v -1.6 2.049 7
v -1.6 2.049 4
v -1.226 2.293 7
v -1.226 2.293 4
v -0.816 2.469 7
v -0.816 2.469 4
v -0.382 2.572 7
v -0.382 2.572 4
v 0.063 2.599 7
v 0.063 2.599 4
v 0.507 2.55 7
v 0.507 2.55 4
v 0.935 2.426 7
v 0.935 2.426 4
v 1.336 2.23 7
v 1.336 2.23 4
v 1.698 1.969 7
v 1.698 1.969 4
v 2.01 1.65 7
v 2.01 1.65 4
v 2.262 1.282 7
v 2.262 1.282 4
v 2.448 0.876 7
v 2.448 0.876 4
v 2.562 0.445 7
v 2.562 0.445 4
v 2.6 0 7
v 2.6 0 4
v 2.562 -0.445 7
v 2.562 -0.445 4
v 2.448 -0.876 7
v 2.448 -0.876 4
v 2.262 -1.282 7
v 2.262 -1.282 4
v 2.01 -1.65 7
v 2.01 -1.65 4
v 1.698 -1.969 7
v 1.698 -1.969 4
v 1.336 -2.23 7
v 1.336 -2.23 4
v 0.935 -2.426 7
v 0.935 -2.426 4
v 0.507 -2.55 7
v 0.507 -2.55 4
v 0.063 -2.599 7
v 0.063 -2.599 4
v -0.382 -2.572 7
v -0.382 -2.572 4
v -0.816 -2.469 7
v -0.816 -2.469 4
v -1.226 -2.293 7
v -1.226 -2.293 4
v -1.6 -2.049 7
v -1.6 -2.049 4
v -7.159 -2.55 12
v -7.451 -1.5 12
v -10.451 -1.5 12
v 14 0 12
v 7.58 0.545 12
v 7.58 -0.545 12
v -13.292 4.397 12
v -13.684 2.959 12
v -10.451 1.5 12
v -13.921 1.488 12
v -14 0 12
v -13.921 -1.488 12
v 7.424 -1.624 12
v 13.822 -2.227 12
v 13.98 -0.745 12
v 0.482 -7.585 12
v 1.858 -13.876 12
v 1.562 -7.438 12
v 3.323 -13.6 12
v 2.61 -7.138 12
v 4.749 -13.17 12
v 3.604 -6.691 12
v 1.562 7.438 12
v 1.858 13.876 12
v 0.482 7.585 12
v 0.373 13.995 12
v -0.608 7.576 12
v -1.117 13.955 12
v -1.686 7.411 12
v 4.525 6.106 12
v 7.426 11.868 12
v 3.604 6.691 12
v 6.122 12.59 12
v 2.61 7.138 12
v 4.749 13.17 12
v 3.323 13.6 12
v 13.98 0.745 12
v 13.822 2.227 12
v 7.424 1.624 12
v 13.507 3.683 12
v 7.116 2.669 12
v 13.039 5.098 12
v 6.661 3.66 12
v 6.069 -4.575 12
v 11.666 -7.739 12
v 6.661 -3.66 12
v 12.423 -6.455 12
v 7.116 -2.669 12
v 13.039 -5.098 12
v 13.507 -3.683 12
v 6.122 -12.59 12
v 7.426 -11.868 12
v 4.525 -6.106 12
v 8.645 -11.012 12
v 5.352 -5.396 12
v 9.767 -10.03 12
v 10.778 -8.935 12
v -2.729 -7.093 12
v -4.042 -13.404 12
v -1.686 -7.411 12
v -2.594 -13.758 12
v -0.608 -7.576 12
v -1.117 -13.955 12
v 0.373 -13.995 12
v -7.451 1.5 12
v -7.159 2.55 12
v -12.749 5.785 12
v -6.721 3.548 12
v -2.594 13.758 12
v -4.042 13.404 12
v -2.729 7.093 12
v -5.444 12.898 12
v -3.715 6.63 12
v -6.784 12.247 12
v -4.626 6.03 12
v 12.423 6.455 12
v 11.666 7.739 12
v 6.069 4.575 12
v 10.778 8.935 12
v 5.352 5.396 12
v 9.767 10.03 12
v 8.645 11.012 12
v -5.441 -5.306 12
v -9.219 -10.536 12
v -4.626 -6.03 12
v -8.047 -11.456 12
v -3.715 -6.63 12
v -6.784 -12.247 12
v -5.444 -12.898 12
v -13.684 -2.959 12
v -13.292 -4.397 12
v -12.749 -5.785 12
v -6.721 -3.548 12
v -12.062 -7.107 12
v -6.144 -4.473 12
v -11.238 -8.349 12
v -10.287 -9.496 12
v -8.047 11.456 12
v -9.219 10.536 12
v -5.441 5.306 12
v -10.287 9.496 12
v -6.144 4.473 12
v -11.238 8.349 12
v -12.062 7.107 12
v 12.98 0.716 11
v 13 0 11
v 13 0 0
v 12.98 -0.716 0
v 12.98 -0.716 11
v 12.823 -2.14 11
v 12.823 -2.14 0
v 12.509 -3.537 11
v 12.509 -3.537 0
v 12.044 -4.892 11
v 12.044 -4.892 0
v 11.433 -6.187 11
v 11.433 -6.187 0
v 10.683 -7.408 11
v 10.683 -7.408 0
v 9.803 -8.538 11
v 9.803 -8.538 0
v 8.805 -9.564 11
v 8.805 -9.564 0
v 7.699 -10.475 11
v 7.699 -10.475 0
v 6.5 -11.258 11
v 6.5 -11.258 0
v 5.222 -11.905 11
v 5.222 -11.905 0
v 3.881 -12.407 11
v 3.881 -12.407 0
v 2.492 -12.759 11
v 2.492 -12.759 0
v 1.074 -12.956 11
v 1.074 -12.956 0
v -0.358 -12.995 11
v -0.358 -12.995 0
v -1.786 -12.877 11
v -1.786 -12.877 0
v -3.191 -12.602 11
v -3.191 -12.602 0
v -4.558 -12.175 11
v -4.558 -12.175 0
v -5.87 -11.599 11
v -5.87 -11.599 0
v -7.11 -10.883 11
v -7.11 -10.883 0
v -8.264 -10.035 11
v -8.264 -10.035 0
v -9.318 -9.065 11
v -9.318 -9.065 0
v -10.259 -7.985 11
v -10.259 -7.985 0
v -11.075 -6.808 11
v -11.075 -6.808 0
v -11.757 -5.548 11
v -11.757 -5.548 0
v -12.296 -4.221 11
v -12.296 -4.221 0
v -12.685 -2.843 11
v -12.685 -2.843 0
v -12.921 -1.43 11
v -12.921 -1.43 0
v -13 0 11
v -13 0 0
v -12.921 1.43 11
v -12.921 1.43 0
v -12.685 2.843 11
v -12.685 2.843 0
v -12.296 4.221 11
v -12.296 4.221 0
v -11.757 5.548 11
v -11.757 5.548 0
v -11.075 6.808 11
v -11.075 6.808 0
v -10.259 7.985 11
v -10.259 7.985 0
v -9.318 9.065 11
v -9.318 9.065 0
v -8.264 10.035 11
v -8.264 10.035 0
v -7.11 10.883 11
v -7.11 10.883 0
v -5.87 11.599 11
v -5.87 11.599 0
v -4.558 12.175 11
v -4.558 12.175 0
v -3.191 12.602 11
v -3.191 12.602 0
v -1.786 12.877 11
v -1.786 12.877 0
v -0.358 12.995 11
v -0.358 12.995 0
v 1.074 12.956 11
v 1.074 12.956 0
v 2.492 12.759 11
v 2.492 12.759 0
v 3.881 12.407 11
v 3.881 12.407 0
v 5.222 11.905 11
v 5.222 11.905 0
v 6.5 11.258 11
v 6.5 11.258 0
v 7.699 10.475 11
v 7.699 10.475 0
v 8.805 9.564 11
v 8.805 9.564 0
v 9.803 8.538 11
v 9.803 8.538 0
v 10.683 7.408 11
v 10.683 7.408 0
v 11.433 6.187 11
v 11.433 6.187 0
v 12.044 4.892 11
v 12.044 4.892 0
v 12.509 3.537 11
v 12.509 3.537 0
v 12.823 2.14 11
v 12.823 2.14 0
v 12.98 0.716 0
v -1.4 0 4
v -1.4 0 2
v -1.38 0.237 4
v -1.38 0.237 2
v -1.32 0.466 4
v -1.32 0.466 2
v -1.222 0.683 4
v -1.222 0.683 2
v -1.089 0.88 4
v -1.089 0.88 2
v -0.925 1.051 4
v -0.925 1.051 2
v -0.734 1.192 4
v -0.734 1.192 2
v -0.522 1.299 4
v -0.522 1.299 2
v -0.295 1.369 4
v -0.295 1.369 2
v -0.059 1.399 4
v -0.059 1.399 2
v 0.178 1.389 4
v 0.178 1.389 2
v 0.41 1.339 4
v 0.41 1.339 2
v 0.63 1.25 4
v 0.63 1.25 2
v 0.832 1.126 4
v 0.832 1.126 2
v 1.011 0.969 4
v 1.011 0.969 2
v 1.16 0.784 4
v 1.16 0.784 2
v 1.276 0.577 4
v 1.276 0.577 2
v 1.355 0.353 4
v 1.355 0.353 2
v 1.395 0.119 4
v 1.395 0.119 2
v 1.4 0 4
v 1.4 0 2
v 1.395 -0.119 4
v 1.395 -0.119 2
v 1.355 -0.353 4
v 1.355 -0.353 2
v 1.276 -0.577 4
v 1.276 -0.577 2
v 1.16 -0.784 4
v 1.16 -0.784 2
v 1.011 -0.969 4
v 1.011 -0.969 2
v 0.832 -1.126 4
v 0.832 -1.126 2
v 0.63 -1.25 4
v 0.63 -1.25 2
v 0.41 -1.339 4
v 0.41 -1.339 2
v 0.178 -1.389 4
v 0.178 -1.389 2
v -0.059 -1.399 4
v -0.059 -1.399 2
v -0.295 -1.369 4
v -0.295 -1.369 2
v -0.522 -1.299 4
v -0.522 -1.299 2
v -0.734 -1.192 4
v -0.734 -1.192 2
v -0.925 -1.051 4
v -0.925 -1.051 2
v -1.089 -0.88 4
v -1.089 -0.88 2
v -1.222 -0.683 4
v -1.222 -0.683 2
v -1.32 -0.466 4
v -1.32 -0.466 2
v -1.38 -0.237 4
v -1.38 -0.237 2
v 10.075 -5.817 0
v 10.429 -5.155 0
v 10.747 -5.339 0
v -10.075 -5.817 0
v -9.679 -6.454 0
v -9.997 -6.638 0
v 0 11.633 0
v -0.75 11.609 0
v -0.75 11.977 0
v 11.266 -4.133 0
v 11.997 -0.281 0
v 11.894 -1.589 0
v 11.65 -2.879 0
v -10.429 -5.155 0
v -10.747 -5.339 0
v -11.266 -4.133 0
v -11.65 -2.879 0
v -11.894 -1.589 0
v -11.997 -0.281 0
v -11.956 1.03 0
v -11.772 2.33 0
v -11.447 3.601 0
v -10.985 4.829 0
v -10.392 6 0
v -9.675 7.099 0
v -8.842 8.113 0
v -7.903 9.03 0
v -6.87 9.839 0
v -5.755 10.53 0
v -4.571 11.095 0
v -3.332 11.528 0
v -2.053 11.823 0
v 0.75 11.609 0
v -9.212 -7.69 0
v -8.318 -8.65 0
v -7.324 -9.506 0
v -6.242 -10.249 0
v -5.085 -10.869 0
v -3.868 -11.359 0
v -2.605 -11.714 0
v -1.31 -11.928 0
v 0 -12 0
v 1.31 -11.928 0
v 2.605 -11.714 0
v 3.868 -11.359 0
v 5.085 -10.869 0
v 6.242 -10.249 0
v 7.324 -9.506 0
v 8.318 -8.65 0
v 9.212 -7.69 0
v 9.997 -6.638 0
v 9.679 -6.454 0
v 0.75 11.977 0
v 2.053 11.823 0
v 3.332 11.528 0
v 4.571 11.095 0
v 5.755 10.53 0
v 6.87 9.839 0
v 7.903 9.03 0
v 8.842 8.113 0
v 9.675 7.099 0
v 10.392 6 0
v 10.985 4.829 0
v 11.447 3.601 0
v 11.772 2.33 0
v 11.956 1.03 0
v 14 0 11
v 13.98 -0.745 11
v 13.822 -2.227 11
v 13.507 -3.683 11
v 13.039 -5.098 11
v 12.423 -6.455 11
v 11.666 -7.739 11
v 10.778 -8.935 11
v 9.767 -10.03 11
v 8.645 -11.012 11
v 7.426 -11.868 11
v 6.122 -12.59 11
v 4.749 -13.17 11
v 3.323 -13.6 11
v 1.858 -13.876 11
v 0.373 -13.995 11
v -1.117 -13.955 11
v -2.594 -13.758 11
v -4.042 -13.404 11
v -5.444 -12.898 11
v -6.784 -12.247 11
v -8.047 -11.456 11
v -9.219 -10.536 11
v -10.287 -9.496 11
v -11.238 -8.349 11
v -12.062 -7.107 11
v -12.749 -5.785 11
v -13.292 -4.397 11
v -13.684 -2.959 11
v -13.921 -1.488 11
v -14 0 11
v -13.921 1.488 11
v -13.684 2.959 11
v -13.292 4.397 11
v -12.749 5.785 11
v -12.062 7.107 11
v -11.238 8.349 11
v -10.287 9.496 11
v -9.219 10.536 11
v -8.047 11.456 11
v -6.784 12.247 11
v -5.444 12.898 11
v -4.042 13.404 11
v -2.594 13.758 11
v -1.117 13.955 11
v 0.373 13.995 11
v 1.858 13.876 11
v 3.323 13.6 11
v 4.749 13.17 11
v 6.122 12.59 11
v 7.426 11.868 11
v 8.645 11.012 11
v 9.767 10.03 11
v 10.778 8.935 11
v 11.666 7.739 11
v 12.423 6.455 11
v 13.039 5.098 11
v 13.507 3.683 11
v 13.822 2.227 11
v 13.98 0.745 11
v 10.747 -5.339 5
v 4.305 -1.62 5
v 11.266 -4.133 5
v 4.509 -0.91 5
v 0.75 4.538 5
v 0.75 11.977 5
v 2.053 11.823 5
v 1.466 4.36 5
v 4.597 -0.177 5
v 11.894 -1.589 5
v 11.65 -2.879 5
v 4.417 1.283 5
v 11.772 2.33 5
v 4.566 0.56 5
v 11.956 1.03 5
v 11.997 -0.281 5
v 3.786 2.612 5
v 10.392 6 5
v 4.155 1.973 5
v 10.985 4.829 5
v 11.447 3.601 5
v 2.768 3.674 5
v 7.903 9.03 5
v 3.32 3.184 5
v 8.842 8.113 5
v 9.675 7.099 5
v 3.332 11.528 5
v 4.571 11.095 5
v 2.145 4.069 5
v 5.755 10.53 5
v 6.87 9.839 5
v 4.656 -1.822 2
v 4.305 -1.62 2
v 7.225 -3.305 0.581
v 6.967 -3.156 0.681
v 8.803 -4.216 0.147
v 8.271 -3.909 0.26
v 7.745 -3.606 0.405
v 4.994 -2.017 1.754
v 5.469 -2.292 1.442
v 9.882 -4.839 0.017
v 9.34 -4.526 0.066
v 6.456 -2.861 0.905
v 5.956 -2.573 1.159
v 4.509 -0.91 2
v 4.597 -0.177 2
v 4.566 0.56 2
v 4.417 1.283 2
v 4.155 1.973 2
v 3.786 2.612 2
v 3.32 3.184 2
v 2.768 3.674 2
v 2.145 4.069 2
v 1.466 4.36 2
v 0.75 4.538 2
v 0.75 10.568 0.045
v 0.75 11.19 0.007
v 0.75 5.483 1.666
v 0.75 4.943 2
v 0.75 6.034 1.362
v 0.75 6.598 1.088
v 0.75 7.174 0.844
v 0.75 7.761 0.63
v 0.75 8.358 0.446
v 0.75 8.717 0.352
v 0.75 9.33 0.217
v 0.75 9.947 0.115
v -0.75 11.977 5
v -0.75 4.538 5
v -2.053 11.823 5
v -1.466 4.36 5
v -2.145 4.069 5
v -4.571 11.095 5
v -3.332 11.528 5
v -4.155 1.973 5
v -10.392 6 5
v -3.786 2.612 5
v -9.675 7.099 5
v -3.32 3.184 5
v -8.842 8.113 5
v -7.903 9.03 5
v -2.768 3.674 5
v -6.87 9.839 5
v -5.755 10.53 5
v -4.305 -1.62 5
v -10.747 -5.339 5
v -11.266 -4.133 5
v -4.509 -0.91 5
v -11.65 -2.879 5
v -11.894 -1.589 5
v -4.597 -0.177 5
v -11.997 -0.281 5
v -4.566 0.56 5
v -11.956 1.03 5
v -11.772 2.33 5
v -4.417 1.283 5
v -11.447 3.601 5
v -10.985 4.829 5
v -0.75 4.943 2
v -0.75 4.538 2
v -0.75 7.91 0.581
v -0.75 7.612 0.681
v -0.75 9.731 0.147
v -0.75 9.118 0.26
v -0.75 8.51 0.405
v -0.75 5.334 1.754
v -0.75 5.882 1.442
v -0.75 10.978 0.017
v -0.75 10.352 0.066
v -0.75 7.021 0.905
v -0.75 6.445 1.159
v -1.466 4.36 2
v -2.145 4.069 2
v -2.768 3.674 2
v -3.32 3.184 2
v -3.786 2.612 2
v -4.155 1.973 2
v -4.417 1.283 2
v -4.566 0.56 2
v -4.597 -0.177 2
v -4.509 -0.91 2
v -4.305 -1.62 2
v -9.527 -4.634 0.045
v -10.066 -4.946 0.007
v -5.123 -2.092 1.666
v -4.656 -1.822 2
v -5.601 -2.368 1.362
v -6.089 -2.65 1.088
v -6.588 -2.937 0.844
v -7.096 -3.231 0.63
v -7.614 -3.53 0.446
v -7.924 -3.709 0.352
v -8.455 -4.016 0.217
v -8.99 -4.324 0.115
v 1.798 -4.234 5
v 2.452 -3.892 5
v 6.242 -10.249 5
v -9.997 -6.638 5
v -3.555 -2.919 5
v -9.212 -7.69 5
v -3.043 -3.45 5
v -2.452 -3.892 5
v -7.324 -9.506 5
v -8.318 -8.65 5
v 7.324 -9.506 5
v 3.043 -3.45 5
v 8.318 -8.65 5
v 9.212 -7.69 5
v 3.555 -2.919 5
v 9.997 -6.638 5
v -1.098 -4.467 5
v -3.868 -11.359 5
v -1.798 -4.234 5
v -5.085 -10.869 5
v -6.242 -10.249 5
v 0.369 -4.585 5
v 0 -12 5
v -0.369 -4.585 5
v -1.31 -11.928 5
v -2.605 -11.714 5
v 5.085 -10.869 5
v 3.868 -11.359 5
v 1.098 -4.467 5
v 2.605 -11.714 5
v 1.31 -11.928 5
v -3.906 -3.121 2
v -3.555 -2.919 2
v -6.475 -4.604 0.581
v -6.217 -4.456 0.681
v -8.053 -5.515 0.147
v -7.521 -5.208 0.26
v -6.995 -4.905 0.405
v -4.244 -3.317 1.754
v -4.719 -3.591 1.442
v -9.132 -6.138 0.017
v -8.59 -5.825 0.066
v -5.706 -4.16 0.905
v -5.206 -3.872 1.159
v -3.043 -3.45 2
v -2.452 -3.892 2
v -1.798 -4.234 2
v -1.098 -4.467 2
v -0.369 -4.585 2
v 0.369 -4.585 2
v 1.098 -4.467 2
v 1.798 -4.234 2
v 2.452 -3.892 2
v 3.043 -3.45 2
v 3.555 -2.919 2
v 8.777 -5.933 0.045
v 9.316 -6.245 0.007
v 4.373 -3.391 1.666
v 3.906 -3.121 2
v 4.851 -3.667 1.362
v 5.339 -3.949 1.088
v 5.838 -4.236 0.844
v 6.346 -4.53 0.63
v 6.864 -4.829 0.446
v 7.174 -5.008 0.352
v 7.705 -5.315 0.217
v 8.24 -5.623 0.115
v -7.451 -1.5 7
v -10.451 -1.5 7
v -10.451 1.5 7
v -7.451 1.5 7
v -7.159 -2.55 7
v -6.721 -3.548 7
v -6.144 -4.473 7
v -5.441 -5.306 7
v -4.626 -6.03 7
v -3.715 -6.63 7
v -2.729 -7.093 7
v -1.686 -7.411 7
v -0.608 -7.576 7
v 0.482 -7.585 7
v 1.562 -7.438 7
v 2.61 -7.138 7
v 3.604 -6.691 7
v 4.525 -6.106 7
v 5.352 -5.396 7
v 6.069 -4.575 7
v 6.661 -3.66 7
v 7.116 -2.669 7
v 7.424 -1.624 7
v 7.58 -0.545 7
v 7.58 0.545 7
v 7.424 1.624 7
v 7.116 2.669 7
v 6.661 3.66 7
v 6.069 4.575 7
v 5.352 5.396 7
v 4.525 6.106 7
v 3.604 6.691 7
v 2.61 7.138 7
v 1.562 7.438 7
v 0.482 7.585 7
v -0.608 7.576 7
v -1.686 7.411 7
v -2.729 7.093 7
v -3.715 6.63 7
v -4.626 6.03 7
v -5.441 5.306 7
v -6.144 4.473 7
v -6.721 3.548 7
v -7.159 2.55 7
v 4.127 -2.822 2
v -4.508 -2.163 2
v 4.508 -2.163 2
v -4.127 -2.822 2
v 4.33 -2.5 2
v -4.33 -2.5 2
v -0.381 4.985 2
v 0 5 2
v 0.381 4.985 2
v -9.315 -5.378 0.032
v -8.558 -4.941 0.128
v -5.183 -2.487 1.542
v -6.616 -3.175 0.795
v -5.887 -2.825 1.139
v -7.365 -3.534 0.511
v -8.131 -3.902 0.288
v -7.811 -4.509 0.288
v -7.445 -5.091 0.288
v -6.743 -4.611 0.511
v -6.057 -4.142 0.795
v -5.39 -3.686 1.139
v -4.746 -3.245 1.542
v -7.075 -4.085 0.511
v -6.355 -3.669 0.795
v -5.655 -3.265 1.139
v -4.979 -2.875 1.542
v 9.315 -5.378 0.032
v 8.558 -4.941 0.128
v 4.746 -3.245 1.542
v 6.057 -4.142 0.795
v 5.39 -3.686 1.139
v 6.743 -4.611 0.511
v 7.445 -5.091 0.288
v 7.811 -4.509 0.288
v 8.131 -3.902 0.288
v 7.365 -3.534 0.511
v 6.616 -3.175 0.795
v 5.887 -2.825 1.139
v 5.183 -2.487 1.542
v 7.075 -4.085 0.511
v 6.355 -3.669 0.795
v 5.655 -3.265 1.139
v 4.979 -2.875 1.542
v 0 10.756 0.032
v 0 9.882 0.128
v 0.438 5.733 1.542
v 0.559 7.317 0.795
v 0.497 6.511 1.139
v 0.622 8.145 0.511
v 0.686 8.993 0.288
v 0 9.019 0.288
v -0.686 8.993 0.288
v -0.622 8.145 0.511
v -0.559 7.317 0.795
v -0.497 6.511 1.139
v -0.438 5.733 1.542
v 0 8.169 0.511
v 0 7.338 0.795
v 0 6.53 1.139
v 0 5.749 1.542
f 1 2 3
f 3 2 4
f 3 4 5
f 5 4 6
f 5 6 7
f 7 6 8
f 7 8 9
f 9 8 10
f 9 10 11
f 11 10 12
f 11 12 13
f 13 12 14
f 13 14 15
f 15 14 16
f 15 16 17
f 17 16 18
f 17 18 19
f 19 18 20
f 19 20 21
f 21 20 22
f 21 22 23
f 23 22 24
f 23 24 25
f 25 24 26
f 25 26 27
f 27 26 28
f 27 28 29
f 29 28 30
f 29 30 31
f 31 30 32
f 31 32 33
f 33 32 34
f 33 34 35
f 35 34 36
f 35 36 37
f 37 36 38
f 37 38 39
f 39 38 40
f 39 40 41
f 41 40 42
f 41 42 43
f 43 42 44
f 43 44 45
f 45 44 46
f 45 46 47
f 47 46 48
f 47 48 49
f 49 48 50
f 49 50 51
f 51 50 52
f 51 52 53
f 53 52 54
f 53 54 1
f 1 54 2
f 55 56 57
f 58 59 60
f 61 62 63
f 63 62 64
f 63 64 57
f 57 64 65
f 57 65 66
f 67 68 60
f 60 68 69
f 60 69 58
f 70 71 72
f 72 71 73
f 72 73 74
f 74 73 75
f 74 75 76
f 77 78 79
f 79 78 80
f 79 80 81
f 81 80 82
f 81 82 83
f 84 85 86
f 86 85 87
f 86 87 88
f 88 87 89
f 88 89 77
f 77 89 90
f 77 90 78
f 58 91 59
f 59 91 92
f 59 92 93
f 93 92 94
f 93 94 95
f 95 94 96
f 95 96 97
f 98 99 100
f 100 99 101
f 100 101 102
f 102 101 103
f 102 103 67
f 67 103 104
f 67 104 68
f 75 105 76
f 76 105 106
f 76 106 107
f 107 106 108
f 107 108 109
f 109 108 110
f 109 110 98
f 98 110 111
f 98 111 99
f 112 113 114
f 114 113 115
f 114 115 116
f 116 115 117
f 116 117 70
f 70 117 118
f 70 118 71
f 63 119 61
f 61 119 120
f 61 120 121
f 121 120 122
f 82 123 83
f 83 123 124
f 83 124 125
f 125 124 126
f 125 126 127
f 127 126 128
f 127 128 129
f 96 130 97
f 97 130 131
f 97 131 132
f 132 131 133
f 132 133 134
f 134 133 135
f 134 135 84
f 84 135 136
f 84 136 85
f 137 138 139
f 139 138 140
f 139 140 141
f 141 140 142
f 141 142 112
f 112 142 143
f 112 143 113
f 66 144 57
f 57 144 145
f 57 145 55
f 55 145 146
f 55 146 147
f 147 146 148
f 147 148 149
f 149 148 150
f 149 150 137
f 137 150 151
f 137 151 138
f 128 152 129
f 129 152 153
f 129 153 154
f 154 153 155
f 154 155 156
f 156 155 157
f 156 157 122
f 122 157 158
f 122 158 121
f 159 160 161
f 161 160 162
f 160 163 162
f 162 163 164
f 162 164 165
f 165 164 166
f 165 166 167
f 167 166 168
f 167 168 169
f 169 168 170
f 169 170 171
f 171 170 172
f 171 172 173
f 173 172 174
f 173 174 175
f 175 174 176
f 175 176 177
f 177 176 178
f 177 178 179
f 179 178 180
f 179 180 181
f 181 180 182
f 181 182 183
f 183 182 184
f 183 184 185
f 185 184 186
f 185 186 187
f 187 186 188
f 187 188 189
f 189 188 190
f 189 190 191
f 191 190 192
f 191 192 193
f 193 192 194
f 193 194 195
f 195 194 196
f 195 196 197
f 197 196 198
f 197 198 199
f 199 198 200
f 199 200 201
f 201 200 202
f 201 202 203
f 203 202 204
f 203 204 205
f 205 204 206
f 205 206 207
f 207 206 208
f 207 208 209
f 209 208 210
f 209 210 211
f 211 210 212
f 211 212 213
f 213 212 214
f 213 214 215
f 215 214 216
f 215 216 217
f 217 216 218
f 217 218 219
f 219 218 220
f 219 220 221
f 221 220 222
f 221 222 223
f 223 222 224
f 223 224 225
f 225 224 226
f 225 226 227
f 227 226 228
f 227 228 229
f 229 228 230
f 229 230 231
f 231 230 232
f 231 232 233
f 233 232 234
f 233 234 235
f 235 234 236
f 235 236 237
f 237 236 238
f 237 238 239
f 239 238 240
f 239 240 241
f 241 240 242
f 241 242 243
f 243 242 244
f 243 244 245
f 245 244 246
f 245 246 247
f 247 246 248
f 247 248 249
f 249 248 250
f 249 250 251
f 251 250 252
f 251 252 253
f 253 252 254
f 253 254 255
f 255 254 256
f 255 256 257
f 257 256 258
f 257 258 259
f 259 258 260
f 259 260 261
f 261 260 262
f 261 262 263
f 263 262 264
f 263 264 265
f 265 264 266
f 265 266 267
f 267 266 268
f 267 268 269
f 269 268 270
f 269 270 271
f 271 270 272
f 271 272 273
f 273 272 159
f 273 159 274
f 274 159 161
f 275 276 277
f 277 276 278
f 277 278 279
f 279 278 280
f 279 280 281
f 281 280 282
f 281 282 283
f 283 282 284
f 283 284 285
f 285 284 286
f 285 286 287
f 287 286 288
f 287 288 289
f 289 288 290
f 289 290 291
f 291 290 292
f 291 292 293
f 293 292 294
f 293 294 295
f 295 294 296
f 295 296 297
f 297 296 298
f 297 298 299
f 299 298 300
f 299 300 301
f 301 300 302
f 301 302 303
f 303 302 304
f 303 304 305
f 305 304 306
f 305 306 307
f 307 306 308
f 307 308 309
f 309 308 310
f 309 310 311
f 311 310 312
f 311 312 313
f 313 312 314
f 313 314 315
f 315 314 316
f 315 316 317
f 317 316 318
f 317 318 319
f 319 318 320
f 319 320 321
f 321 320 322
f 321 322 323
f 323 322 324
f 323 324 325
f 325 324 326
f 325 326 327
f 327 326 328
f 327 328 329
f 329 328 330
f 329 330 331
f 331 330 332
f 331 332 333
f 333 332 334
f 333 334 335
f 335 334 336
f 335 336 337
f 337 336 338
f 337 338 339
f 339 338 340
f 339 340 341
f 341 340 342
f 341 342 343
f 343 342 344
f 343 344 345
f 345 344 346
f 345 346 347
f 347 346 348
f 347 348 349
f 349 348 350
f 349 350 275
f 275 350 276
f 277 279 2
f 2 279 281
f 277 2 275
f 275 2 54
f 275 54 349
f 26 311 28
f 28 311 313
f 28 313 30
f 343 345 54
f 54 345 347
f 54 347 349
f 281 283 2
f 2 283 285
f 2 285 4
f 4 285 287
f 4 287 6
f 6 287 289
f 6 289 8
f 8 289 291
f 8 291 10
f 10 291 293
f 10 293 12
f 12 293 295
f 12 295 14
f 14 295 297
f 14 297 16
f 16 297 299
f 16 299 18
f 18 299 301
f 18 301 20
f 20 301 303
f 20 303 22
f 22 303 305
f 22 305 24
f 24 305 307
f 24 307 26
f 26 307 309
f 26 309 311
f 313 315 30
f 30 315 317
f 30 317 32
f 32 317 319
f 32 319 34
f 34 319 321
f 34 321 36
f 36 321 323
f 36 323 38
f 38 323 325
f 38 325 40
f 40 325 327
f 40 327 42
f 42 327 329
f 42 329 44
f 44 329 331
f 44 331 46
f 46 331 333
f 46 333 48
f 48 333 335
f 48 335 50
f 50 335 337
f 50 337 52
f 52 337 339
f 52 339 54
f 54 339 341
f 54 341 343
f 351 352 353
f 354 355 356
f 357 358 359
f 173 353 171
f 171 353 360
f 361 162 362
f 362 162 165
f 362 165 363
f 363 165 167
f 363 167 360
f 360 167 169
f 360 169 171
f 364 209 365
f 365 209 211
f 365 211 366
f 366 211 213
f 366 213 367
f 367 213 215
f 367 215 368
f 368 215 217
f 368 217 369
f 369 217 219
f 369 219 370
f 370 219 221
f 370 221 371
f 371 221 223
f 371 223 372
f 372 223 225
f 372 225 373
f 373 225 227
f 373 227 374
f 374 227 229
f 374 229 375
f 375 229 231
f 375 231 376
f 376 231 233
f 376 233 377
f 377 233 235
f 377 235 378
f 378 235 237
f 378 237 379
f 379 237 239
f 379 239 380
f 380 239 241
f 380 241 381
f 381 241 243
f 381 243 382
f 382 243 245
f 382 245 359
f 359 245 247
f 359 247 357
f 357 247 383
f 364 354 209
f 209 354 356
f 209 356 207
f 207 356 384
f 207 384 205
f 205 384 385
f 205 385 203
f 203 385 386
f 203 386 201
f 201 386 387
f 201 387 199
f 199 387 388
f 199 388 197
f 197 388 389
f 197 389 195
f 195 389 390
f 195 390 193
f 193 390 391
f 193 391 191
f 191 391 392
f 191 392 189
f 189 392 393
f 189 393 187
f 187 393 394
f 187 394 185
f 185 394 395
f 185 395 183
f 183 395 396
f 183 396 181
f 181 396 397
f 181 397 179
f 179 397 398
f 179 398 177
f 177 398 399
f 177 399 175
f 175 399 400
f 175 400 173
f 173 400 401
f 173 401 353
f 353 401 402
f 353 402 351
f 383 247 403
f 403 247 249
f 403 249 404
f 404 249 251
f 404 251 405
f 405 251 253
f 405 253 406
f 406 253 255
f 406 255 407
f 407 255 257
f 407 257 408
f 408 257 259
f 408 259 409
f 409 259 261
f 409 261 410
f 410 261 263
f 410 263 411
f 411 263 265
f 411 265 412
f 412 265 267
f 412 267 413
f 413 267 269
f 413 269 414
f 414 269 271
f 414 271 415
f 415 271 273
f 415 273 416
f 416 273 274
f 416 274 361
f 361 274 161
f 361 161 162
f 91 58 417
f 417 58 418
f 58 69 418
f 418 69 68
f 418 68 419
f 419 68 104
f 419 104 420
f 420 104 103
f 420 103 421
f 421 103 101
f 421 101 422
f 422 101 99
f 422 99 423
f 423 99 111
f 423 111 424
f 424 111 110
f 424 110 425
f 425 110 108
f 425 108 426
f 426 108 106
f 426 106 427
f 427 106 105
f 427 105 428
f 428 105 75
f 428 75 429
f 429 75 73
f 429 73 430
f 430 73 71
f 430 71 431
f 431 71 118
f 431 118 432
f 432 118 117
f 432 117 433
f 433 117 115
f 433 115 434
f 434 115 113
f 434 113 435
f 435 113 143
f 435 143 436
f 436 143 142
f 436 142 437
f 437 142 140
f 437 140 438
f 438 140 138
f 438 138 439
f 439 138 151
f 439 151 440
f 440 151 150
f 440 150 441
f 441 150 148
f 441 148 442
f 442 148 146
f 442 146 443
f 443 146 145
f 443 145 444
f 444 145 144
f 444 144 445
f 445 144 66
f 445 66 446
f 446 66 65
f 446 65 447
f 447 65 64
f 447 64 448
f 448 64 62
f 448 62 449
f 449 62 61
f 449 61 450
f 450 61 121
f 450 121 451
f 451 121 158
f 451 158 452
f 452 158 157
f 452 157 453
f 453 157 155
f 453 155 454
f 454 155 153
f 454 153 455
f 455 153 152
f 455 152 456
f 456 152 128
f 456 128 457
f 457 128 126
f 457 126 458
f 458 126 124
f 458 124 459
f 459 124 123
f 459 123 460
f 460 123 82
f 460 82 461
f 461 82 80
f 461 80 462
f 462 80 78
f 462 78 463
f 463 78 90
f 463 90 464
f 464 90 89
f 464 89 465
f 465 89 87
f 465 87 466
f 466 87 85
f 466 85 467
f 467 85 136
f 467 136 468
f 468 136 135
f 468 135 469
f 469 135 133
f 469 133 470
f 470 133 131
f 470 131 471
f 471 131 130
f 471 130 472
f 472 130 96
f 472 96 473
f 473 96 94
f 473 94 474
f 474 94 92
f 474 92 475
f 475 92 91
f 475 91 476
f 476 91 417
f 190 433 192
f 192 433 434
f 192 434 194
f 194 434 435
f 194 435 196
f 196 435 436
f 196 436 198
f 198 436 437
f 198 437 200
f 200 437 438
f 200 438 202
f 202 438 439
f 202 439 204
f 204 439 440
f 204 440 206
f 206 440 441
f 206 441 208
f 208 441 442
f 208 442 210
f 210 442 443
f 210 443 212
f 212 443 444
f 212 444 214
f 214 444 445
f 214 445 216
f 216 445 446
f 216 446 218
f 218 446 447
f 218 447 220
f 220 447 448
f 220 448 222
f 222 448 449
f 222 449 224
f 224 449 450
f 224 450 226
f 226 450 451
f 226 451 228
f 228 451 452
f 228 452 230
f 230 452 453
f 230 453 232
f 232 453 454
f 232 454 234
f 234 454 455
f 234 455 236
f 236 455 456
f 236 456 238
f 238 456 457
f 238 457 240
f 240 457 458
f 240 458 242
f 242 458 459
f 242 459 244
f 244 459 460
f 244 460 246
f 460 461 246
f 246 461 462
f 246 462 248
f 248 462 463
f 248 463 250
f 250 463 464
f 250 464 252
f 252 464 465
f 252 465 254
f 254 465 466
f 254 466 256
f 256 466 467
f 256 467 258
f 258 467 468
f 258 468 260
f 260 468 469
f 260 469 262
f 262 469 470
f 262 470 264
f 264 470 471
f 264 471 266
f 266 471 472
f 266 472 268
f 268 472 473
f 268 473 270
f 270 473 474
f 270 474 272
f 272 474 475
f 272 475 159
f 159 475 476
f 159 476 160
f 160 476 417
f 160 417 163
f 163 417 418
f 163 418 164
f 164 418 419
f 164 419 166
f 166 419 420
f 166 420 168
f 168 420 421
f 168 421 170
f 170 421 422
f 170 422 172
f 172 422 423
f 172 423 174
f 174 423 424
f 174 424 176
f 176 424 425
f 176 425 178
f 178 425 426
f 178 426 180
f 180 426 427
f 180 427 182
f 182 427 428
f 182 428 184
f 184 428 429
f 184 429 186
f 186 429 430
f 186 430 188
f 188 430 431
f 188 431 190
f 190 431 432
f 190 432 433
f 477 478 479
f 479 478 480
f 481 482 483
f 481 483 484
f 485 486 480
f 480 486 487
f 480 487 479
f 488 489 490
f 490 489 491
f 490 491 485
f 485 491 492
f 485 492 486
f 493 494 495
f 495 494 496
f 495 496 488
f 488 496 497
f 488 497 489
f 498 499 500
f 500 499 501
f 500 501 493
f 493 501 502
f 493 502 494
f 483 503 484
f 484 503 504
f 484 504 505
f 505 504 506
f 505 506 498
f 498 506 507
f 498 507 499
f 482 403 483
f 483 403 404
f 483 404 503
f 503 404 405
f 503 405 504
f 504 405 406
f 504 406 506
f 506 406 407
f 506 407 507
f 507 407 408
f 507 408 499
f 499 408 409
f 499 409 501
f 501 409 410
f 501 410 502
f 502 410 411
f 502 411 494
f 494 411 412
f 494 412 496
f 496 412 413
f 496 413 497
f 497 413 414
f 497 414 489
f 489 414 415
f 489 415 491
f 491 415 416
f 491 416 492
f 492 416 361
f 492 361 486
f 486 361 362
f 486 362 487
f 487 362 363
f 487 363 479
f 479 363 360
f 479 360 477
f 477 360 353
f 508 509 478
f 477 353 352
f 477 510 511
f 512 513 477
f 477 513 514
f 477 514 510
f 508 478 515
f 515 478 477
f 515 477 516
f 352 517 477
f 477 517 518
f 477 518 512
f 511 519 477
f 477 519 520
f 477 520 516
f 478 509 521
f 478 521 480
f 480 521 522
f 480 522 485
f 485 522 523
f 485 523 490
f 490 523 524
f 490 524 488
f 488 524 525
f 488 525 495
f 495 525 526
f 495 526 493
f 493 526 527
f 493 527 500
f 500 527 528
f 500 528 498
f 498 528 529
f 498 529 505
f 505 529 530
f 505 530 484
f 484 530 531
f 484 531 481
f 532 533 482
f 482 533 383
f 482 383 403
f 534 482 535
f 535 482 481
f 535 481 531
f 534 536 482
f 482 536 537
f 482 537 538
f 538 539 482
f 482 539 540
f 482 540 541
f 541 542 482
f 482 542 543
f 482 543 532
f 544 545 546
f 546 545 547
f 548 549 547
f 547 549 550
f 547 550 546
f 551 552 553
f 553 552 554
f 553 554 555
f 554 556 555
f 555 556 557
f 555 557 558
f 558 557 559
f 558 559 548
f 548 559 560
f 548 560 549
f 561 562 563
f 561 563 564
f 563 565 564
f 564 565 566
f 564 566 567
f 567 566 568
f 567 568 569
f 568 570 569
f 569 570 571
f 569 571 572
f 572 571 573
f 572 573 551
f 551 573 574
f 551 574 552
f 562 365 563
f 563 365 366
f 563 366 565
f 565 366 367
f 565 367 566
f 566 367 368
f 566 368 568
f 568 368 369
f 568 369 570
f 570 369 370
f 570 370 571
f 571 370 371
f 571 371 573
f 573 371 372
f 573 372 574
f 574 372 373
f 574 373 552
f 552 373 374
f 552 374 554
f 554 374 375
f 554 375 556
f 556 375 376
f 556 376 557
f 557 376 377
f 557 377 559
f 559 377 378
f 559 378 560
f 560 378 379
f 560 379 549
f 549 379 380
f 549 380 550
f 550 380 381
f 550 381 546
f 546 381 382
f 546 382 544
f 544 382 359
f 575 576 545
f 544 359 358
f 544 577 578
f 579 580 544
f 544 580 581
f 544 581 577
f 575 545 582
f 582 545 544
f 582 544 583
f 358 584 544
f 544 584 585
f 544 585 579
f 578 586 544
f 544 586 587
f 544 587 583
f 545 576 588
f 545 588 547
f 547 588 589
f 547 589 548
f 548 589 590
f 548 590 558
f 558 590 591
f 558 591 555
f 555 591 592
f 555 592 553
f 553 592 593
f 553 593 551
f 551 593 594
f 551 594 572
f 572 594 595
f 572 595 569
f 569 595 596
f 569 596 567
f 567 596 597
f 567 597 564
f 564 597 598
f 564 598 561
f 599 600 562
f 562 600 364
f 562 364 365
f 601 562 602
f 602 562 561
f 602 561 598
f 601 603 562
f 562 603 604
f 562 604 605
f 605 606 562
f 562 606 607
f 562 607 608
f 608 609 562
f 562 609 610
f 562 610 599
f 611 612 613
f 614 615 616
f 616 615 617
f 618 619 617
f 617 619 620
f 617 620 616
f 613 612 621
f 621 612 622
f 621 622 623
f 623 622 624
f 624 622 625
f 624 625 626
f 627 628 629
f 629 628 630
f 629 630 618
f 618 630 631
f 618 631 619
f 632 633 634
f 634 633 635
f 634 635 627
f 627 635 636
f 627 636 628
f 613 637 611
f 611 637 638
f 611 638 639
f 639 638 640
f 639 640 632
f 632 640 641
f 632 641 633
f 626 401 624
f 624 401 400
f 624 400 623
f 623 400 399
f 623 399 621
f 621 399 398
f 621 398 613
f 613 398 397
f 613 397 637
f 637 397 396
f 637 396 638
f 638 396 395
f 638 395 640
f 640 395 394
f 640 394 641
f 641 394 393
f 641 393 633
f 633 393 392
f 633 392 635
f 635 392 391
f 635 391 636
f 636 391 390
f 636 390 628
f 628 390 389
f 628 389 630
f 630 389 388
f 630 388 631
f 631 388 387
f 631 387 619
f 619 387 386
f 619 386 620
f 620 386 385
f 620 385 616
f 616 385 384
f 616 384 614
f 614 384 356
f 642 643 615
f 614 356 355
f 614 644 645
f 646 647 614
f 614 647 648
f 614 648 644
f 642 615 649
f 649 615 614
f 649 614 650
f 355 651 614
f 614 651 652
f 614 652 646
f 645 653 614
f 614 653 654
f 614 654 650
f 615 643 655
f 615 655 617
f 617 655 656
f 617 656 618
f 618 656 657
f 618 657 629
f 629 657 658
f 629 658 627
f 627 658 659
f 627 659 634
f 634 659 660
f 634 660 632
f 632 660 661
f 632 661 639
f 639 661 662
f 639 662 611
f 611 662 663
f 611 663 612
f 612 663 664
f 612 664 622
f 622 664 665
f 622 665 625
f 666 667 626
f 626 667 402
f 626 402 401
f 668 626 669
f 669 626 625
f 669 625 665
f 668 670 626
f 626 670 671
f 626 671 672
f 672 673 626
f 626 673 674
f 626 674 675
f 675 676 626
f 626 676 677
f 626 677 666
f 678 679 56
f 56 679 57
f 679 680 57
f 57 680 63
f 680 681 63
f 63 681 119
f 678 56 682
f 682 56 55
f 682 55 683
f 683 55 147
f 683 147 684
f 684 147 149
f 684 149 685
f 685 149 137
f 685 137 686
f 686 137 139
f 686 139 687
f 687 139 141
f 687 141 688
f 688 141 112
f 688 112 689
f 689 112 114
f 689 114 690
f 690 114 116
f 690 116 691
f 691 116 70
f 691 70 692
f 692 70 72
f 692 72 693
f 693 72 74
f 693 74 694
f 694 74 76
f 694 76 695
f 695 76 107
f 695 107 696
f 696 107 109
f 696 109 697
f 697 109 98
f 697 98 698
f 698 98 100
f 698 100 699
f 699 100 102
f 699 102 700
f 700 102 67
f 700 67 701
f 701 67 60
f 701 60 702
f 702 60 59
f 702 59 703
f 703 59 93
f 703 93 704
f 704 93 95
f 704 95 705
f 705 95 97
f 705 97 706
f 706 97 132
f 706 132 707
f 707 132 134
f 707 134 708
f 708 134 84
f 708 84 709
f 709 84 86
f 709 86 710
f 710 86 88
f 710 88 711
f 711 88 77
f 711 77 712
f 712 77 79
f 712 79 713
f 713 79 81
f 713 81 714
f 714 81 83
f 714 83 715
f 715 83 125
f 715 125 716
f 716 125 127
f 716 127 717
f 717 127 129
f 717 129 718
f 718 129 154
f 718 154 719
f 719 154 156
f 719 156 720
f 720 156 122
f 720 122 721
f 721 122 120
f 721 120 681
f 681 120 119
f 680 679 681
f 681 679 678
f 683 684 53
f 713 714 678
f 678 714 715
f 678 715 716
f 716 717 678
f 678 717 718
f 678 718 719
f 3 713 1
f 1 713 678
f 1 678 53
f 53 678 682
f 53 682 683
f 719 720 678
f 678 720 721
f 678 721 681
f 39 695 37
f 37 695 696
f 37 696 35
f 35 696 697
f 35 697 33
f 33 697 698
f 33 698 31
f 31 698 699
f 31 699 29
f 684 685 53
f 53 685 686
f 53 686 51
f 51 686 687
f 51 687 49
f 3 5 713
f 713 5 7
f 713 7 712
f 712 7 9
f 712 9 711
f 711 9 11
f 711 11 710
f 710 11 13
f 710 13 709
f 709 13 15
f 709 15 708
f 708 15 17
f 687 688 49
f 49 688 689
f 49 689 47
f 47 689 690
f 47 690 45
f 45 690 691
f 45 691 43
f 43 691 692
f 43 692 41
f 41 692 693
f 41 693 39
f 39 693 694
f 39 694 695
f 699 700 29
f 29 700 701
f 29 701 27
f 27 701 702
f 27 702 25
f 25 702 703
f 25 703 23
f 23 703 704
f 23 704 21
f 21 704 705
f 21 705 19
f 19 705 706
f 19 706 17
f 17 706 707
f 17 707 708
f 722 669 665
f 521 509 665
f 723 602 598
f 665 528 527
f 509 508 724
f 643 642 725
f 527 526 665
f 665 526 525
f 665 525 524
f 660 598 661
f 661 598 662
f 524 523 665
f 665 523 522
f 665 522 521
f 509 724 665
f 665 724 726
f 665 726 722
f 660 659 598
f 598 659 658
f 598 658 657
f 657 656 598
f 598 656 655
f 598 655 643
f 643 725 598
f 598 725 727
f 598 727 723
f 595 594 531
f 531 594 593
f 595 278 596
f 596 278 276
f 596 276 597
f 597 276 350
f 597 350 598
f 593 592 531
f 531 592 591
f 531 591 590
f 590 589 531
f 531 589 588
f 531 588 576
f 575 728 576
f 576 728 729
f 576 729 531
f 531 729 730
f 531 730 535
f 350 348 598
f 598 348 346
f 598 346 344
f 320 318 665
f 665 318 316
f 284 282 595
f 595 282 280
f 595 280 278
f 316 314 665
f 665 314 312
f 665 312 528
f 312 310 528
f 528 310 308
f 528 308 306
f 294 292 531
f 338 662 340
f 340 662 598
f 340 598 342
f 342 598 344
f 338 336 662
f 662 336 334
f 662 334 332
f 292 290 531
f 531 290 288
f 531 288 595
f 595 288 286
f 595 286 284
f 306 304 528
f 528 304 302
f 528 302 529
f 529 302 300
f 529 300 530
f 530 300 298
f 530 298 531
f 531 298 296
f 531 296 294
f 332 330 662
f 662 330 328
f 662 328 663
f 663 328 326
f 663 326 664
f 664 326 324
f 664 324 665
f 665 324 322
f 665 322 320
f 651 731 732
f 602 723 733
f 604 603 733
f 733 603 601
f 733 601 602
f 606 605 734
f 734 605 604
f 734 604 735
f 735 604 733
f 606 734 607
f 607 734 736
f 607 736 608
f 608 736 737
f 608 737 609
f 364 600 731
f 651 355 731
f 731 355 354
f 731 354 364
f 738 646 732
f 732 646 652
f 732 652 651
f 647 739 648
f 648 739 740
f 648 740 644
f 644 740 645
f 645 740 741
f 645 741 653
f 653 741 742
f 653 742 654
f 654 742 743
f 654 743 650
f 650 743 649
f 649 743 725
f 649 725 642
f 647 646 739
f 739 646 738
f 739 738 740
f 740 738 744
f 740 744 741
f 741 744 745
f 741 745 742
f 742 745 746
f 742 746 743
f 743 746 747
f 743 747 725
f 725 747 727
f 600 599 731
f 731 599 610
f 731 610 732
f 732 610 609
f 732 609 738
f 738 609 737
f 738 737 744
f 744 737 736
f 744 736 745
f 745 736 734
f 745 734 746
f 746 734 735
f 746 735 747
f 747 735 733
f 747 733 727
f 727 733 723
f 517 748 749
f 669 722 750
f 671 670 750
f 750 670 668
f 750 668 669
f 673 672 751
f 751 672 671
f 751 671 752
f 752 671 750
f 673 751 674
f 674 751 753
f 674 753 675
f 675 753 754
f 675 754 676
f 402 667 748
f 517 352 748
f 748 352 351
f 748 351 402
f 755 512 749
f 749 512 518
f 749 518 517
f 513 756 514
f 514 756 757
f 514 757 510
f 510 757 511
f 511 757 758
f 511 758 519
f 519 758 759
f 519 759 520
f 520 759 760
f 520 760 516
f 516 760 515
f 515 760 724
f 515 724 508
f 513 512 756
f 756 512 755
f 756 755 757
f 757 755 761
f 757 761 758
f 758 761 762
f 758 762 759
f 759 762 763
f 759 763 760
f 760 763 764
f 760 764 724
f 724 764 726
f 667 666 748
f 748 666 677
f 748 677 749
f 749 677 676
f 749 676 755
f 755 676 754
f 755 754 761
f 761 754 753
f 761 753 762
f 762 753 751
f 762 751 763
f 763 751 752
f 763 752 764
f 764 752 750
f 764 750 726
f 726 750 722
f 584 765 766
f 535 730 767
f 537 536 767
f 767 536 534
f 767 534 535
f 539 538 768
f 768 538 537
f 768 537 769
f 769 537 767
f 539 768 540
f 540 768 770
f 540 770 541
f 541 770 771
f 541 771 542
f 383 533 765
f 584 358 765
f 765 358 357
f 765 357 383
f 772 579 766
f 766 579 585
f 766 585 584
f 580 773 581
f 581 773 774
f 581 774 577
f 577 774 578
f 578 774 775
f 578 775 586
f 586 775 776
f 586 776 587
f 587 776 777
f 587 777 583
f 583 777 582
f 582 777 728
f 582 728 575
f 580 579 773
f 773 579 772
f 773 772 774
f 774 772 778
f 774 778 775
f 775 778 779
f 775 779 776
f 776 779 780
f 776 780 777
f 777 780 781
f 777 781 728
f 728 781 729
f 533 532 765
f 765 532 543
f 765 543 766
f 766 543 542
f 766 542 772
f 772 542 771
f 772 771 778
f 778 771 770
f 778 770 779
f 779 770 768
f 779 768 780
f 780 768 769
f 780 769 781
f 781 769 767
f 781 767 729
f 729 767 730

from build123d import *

# Parameters (mm, degrees)
SKETCH_1_R          = 13
SKETCH_1_R_2        = 2.6
SKETCH_1_R_3        = 1.4
EXTRUDE_1_DEPTH     = 4
SKETCH_1_3_R        = 13
SKETCH_1_3_R_2      = 2.6
EXTRUDE_2_DEPTH     = 12
EXTRUDE_START       = 11
SKETCH_1_6_R        = 14
SKETCH_1_6_R_2      = 13
EXTRUDE_3_DEPTH     = 1
CUT_EXTRUDE_1_DEPTH = 5
SKETCH_6_R          = 7.6
SKETCH_6_W          = 3
SKETCH_6_H          = 3
CUT_EXTRUDE_5_DEPTH = 5
SKETCH_5_R          = 5
CUT_EXTRUDE_6_DEPTH = 2
FILLET_1_R          = 12


with BuildPart() as part:
    # 草图1 → 凸台-拉伸1 (new body)
    # profile 1 of 3: a face of its own
    with BuildSketch(Plane.XY):
        Circle(SKETCH_1_R)
        Circle(SKETCH_1_R_2, mode=Mode.SUBTRACT)
    # profile 2 of 3: a face of its own
    with BuildSketch(Plane.XY):
        with BuildLine():
            Line((-1.6, -2.049390153), (-1.6, 2.049390153))
            ThreePointArc((-1.6, 2.049390153), (-2.6, 0), (-1.6, -2.049390153))
        make_face()
    # profile 3 of 3: a face of its own
    with BuildSketch(Plane.XY):
        with BuildLine():
            ThreePointArc((2.6, 0), (1.140175425, 2.336664289), (-1.6, 2.049390153))
            Line((-1.6, 2.049390153), (-1.6, -2.049390153))
            ThreePointArc((-1.6, -2.049390153), (1.140175425, -2.336664289), (2.6, 0))
        make_face()
        Circle(SKETCH_1_R_3, mode=Mode.SUBTRACT)
    extrude(amount=EXTRUDE_1_DEPTH)

    # 草图1<3> → 凸台-拉伸2 (add)
    # profile 1 of 2: a face of its own
    with BuildSketch(Plane.XY):
        Circle(SKETCH_1_3_R)
        Circle(SKETCH_1_3_R_2, mode=Mode.SUBTRACT)
    # profile 2 of 2: a face of its own
    with BuildSketch(Plane.XY):
        with BuildLine():
            Line((-1.6, -2.049390153), (-1.6, 2.049390153))
            ThreePointArc((-1.6, 2.049390153), (-2.6, 0), (-1.6, -2.049390153))
        make_face()
    extrude(amount=EXTRUDE_2_DEPTH)

    # 草图1<6> → 凸台-拉伸3 (add)
    with BuildSketch(Plane.XY.offset(EXTRUDE_START)):
        Circle(SKETCH_1_6_R)
        Circle(SKETCH_1_6_R_2, mode=Mode.SUBTRACT)
    extrude(amount=EXTRUDE_3_DEPTH)

    # 草图3 → 切除-拉伸1 (cut)
    with BuildSketch(Plane(origin=(0, 0, 0), x_dir=(-1, 0, 0), z_dir=(0, 0, -1))):
        with BuildLine():
            Line((-10.746987514, -5.338750731), (-4.305410284, -1.619704383))
            ThreePointArc((-4.305410284, -1.619704383), (-3.983716857, 2.3), (-0.75, 4.538446871))
            Line((-0.75, 4.538446871), (-0.75, 11.976539567))
            ThreePointArc((-0.75, 11.976539567), (-10.392304845, 6), (-10.746987514, -5.338750731))
        make_face()
        with BuildLine():
            Line((9.996987514, -6.637788836), (3.555410284, -2.918742488))
            ThreePointArc((3.555410284, -2.918742488), (0, -4.6), (-3.555410284, -2.918742488))
            Line((-3.555410284, -2.918742488), (-9.996987514, -6.637788836))
            ThreePointArc((-9.996987514, -6.637788836), (0, -12), (9.996987514, -6.637788836))
        make_face()
        with BuildLine():
            ThreePointArc((4.6, 0), (4.52575338, -0.823138109), (4.305410284, -1.619704383))
            Line((4.305410284, -1.619704383), (10.746987514, -5.338750731))
            ThreePointArc((10.746987514, -5.338750731), (11.682547885, -2.741910814), (12, 0))
            ThreePointArc((12, 0), (8.746427842, 8.215838363), (0.75, 11.976539567))
            Line((0.75, 11.976539567), (0.75, 4.538446871))
            ThreePointArc((0.75, 4.538446871), (3.507848343, 2.975735203), (4.6, 0))
        make_face()
    extrude(amount=-CUT_EXTRUDE_1_DEPTH, mode=Mode.SUBTRACT)

    # 草图6 → 切除-拉伸5 (cut)
    with BuildSketch(Plane.XY.offset(12)):
        Circle(SKETCH_6_R)
        with Locations((-8.950503339, 0)):
            Rectangle(SKETCH_6_W, SKETCH_6_H)
    extrude(amount=-CUT_EXTRUDE_5_DEPTH, mode=Mode.SUBTRACT)

    # 草图5 → 切除-拉伸6 (cut)
    with BuildSketch(Plane(origin=(0, 0, 0), x_dir=(-1, 0, 0), z_dir=(0, 0, -1))):
        Circle(SKETCH_5_R)
    extrude(amount=-CUT_EXTRUDE_6_DEPTH, mode=Mode.SUBTRACT)

    # 圆角1
    # the kernel refuses this fillet: 12 mm, written as the material it takes off along each edge
    with BuildSketch(Plane(origin=(0, 0, 0), x_dir=(-0.0031415874858860904, -0.9999950652018581, 0), z_dir=(0.9999950652018581, -0.0031415874858860904, 0))) as fillet_1_piece_1:
        with BuildLine():
            CenterArc((11.633249581, -12), FILLET_1_R, 90, 33.557309762)
            Line((5, -2), (5, 0))
            Line((5, 0), (11.633249581, 0))
        make_face()
    revolve(axis=Axis((0, 0, 0), (0, 0, -1)), revolution_arc=359.64, mode=Mode.SUBTRACT)
    with BuildSketch(Plane(origin=(0, 0, 0), x_dir=(0.8675919238668026, 0.49727683802998507, 0), z_dir=(-0.49727683802998507, 0.8675919238668026, 0))) as fillet_1_piece_2:
        with BuildLine():
            CenterArc((11.633249581, -12), FILLET_1_R, 90, 33.557309762)
            Line((5, -2), (5, 0))
            Line((5, 0), (11.633249581, 0))
        make_face()
    revolve(axis=Axis((0, 0, 0), (0, 0, -1)), revolution_arc=359.64, mode=Mode.SUBTRACT)
    with BuildSketch(Plane(origin=(0, 0, 0), x_dir=(-0.8644503363809427, 0.5027182271719167, 0), z_dir=(-0.5027182271719167, -0.8644503363809427, 0))) as fillet_1_piece_3:
        with BuildLine():
            CenterArc((11.633249581, -12), FILLET_1_R, 90, 33.557309762)
            Line((5, -2), (5, 0))
            Line((5, 0), (11.633249581, 0))
        make_face()
    revolve(axis=Axis((0, 0, 0), (0, 0, -1)), revolution_arc=359.64, mode=Mode.SUBTRACT)


solid = part.part
